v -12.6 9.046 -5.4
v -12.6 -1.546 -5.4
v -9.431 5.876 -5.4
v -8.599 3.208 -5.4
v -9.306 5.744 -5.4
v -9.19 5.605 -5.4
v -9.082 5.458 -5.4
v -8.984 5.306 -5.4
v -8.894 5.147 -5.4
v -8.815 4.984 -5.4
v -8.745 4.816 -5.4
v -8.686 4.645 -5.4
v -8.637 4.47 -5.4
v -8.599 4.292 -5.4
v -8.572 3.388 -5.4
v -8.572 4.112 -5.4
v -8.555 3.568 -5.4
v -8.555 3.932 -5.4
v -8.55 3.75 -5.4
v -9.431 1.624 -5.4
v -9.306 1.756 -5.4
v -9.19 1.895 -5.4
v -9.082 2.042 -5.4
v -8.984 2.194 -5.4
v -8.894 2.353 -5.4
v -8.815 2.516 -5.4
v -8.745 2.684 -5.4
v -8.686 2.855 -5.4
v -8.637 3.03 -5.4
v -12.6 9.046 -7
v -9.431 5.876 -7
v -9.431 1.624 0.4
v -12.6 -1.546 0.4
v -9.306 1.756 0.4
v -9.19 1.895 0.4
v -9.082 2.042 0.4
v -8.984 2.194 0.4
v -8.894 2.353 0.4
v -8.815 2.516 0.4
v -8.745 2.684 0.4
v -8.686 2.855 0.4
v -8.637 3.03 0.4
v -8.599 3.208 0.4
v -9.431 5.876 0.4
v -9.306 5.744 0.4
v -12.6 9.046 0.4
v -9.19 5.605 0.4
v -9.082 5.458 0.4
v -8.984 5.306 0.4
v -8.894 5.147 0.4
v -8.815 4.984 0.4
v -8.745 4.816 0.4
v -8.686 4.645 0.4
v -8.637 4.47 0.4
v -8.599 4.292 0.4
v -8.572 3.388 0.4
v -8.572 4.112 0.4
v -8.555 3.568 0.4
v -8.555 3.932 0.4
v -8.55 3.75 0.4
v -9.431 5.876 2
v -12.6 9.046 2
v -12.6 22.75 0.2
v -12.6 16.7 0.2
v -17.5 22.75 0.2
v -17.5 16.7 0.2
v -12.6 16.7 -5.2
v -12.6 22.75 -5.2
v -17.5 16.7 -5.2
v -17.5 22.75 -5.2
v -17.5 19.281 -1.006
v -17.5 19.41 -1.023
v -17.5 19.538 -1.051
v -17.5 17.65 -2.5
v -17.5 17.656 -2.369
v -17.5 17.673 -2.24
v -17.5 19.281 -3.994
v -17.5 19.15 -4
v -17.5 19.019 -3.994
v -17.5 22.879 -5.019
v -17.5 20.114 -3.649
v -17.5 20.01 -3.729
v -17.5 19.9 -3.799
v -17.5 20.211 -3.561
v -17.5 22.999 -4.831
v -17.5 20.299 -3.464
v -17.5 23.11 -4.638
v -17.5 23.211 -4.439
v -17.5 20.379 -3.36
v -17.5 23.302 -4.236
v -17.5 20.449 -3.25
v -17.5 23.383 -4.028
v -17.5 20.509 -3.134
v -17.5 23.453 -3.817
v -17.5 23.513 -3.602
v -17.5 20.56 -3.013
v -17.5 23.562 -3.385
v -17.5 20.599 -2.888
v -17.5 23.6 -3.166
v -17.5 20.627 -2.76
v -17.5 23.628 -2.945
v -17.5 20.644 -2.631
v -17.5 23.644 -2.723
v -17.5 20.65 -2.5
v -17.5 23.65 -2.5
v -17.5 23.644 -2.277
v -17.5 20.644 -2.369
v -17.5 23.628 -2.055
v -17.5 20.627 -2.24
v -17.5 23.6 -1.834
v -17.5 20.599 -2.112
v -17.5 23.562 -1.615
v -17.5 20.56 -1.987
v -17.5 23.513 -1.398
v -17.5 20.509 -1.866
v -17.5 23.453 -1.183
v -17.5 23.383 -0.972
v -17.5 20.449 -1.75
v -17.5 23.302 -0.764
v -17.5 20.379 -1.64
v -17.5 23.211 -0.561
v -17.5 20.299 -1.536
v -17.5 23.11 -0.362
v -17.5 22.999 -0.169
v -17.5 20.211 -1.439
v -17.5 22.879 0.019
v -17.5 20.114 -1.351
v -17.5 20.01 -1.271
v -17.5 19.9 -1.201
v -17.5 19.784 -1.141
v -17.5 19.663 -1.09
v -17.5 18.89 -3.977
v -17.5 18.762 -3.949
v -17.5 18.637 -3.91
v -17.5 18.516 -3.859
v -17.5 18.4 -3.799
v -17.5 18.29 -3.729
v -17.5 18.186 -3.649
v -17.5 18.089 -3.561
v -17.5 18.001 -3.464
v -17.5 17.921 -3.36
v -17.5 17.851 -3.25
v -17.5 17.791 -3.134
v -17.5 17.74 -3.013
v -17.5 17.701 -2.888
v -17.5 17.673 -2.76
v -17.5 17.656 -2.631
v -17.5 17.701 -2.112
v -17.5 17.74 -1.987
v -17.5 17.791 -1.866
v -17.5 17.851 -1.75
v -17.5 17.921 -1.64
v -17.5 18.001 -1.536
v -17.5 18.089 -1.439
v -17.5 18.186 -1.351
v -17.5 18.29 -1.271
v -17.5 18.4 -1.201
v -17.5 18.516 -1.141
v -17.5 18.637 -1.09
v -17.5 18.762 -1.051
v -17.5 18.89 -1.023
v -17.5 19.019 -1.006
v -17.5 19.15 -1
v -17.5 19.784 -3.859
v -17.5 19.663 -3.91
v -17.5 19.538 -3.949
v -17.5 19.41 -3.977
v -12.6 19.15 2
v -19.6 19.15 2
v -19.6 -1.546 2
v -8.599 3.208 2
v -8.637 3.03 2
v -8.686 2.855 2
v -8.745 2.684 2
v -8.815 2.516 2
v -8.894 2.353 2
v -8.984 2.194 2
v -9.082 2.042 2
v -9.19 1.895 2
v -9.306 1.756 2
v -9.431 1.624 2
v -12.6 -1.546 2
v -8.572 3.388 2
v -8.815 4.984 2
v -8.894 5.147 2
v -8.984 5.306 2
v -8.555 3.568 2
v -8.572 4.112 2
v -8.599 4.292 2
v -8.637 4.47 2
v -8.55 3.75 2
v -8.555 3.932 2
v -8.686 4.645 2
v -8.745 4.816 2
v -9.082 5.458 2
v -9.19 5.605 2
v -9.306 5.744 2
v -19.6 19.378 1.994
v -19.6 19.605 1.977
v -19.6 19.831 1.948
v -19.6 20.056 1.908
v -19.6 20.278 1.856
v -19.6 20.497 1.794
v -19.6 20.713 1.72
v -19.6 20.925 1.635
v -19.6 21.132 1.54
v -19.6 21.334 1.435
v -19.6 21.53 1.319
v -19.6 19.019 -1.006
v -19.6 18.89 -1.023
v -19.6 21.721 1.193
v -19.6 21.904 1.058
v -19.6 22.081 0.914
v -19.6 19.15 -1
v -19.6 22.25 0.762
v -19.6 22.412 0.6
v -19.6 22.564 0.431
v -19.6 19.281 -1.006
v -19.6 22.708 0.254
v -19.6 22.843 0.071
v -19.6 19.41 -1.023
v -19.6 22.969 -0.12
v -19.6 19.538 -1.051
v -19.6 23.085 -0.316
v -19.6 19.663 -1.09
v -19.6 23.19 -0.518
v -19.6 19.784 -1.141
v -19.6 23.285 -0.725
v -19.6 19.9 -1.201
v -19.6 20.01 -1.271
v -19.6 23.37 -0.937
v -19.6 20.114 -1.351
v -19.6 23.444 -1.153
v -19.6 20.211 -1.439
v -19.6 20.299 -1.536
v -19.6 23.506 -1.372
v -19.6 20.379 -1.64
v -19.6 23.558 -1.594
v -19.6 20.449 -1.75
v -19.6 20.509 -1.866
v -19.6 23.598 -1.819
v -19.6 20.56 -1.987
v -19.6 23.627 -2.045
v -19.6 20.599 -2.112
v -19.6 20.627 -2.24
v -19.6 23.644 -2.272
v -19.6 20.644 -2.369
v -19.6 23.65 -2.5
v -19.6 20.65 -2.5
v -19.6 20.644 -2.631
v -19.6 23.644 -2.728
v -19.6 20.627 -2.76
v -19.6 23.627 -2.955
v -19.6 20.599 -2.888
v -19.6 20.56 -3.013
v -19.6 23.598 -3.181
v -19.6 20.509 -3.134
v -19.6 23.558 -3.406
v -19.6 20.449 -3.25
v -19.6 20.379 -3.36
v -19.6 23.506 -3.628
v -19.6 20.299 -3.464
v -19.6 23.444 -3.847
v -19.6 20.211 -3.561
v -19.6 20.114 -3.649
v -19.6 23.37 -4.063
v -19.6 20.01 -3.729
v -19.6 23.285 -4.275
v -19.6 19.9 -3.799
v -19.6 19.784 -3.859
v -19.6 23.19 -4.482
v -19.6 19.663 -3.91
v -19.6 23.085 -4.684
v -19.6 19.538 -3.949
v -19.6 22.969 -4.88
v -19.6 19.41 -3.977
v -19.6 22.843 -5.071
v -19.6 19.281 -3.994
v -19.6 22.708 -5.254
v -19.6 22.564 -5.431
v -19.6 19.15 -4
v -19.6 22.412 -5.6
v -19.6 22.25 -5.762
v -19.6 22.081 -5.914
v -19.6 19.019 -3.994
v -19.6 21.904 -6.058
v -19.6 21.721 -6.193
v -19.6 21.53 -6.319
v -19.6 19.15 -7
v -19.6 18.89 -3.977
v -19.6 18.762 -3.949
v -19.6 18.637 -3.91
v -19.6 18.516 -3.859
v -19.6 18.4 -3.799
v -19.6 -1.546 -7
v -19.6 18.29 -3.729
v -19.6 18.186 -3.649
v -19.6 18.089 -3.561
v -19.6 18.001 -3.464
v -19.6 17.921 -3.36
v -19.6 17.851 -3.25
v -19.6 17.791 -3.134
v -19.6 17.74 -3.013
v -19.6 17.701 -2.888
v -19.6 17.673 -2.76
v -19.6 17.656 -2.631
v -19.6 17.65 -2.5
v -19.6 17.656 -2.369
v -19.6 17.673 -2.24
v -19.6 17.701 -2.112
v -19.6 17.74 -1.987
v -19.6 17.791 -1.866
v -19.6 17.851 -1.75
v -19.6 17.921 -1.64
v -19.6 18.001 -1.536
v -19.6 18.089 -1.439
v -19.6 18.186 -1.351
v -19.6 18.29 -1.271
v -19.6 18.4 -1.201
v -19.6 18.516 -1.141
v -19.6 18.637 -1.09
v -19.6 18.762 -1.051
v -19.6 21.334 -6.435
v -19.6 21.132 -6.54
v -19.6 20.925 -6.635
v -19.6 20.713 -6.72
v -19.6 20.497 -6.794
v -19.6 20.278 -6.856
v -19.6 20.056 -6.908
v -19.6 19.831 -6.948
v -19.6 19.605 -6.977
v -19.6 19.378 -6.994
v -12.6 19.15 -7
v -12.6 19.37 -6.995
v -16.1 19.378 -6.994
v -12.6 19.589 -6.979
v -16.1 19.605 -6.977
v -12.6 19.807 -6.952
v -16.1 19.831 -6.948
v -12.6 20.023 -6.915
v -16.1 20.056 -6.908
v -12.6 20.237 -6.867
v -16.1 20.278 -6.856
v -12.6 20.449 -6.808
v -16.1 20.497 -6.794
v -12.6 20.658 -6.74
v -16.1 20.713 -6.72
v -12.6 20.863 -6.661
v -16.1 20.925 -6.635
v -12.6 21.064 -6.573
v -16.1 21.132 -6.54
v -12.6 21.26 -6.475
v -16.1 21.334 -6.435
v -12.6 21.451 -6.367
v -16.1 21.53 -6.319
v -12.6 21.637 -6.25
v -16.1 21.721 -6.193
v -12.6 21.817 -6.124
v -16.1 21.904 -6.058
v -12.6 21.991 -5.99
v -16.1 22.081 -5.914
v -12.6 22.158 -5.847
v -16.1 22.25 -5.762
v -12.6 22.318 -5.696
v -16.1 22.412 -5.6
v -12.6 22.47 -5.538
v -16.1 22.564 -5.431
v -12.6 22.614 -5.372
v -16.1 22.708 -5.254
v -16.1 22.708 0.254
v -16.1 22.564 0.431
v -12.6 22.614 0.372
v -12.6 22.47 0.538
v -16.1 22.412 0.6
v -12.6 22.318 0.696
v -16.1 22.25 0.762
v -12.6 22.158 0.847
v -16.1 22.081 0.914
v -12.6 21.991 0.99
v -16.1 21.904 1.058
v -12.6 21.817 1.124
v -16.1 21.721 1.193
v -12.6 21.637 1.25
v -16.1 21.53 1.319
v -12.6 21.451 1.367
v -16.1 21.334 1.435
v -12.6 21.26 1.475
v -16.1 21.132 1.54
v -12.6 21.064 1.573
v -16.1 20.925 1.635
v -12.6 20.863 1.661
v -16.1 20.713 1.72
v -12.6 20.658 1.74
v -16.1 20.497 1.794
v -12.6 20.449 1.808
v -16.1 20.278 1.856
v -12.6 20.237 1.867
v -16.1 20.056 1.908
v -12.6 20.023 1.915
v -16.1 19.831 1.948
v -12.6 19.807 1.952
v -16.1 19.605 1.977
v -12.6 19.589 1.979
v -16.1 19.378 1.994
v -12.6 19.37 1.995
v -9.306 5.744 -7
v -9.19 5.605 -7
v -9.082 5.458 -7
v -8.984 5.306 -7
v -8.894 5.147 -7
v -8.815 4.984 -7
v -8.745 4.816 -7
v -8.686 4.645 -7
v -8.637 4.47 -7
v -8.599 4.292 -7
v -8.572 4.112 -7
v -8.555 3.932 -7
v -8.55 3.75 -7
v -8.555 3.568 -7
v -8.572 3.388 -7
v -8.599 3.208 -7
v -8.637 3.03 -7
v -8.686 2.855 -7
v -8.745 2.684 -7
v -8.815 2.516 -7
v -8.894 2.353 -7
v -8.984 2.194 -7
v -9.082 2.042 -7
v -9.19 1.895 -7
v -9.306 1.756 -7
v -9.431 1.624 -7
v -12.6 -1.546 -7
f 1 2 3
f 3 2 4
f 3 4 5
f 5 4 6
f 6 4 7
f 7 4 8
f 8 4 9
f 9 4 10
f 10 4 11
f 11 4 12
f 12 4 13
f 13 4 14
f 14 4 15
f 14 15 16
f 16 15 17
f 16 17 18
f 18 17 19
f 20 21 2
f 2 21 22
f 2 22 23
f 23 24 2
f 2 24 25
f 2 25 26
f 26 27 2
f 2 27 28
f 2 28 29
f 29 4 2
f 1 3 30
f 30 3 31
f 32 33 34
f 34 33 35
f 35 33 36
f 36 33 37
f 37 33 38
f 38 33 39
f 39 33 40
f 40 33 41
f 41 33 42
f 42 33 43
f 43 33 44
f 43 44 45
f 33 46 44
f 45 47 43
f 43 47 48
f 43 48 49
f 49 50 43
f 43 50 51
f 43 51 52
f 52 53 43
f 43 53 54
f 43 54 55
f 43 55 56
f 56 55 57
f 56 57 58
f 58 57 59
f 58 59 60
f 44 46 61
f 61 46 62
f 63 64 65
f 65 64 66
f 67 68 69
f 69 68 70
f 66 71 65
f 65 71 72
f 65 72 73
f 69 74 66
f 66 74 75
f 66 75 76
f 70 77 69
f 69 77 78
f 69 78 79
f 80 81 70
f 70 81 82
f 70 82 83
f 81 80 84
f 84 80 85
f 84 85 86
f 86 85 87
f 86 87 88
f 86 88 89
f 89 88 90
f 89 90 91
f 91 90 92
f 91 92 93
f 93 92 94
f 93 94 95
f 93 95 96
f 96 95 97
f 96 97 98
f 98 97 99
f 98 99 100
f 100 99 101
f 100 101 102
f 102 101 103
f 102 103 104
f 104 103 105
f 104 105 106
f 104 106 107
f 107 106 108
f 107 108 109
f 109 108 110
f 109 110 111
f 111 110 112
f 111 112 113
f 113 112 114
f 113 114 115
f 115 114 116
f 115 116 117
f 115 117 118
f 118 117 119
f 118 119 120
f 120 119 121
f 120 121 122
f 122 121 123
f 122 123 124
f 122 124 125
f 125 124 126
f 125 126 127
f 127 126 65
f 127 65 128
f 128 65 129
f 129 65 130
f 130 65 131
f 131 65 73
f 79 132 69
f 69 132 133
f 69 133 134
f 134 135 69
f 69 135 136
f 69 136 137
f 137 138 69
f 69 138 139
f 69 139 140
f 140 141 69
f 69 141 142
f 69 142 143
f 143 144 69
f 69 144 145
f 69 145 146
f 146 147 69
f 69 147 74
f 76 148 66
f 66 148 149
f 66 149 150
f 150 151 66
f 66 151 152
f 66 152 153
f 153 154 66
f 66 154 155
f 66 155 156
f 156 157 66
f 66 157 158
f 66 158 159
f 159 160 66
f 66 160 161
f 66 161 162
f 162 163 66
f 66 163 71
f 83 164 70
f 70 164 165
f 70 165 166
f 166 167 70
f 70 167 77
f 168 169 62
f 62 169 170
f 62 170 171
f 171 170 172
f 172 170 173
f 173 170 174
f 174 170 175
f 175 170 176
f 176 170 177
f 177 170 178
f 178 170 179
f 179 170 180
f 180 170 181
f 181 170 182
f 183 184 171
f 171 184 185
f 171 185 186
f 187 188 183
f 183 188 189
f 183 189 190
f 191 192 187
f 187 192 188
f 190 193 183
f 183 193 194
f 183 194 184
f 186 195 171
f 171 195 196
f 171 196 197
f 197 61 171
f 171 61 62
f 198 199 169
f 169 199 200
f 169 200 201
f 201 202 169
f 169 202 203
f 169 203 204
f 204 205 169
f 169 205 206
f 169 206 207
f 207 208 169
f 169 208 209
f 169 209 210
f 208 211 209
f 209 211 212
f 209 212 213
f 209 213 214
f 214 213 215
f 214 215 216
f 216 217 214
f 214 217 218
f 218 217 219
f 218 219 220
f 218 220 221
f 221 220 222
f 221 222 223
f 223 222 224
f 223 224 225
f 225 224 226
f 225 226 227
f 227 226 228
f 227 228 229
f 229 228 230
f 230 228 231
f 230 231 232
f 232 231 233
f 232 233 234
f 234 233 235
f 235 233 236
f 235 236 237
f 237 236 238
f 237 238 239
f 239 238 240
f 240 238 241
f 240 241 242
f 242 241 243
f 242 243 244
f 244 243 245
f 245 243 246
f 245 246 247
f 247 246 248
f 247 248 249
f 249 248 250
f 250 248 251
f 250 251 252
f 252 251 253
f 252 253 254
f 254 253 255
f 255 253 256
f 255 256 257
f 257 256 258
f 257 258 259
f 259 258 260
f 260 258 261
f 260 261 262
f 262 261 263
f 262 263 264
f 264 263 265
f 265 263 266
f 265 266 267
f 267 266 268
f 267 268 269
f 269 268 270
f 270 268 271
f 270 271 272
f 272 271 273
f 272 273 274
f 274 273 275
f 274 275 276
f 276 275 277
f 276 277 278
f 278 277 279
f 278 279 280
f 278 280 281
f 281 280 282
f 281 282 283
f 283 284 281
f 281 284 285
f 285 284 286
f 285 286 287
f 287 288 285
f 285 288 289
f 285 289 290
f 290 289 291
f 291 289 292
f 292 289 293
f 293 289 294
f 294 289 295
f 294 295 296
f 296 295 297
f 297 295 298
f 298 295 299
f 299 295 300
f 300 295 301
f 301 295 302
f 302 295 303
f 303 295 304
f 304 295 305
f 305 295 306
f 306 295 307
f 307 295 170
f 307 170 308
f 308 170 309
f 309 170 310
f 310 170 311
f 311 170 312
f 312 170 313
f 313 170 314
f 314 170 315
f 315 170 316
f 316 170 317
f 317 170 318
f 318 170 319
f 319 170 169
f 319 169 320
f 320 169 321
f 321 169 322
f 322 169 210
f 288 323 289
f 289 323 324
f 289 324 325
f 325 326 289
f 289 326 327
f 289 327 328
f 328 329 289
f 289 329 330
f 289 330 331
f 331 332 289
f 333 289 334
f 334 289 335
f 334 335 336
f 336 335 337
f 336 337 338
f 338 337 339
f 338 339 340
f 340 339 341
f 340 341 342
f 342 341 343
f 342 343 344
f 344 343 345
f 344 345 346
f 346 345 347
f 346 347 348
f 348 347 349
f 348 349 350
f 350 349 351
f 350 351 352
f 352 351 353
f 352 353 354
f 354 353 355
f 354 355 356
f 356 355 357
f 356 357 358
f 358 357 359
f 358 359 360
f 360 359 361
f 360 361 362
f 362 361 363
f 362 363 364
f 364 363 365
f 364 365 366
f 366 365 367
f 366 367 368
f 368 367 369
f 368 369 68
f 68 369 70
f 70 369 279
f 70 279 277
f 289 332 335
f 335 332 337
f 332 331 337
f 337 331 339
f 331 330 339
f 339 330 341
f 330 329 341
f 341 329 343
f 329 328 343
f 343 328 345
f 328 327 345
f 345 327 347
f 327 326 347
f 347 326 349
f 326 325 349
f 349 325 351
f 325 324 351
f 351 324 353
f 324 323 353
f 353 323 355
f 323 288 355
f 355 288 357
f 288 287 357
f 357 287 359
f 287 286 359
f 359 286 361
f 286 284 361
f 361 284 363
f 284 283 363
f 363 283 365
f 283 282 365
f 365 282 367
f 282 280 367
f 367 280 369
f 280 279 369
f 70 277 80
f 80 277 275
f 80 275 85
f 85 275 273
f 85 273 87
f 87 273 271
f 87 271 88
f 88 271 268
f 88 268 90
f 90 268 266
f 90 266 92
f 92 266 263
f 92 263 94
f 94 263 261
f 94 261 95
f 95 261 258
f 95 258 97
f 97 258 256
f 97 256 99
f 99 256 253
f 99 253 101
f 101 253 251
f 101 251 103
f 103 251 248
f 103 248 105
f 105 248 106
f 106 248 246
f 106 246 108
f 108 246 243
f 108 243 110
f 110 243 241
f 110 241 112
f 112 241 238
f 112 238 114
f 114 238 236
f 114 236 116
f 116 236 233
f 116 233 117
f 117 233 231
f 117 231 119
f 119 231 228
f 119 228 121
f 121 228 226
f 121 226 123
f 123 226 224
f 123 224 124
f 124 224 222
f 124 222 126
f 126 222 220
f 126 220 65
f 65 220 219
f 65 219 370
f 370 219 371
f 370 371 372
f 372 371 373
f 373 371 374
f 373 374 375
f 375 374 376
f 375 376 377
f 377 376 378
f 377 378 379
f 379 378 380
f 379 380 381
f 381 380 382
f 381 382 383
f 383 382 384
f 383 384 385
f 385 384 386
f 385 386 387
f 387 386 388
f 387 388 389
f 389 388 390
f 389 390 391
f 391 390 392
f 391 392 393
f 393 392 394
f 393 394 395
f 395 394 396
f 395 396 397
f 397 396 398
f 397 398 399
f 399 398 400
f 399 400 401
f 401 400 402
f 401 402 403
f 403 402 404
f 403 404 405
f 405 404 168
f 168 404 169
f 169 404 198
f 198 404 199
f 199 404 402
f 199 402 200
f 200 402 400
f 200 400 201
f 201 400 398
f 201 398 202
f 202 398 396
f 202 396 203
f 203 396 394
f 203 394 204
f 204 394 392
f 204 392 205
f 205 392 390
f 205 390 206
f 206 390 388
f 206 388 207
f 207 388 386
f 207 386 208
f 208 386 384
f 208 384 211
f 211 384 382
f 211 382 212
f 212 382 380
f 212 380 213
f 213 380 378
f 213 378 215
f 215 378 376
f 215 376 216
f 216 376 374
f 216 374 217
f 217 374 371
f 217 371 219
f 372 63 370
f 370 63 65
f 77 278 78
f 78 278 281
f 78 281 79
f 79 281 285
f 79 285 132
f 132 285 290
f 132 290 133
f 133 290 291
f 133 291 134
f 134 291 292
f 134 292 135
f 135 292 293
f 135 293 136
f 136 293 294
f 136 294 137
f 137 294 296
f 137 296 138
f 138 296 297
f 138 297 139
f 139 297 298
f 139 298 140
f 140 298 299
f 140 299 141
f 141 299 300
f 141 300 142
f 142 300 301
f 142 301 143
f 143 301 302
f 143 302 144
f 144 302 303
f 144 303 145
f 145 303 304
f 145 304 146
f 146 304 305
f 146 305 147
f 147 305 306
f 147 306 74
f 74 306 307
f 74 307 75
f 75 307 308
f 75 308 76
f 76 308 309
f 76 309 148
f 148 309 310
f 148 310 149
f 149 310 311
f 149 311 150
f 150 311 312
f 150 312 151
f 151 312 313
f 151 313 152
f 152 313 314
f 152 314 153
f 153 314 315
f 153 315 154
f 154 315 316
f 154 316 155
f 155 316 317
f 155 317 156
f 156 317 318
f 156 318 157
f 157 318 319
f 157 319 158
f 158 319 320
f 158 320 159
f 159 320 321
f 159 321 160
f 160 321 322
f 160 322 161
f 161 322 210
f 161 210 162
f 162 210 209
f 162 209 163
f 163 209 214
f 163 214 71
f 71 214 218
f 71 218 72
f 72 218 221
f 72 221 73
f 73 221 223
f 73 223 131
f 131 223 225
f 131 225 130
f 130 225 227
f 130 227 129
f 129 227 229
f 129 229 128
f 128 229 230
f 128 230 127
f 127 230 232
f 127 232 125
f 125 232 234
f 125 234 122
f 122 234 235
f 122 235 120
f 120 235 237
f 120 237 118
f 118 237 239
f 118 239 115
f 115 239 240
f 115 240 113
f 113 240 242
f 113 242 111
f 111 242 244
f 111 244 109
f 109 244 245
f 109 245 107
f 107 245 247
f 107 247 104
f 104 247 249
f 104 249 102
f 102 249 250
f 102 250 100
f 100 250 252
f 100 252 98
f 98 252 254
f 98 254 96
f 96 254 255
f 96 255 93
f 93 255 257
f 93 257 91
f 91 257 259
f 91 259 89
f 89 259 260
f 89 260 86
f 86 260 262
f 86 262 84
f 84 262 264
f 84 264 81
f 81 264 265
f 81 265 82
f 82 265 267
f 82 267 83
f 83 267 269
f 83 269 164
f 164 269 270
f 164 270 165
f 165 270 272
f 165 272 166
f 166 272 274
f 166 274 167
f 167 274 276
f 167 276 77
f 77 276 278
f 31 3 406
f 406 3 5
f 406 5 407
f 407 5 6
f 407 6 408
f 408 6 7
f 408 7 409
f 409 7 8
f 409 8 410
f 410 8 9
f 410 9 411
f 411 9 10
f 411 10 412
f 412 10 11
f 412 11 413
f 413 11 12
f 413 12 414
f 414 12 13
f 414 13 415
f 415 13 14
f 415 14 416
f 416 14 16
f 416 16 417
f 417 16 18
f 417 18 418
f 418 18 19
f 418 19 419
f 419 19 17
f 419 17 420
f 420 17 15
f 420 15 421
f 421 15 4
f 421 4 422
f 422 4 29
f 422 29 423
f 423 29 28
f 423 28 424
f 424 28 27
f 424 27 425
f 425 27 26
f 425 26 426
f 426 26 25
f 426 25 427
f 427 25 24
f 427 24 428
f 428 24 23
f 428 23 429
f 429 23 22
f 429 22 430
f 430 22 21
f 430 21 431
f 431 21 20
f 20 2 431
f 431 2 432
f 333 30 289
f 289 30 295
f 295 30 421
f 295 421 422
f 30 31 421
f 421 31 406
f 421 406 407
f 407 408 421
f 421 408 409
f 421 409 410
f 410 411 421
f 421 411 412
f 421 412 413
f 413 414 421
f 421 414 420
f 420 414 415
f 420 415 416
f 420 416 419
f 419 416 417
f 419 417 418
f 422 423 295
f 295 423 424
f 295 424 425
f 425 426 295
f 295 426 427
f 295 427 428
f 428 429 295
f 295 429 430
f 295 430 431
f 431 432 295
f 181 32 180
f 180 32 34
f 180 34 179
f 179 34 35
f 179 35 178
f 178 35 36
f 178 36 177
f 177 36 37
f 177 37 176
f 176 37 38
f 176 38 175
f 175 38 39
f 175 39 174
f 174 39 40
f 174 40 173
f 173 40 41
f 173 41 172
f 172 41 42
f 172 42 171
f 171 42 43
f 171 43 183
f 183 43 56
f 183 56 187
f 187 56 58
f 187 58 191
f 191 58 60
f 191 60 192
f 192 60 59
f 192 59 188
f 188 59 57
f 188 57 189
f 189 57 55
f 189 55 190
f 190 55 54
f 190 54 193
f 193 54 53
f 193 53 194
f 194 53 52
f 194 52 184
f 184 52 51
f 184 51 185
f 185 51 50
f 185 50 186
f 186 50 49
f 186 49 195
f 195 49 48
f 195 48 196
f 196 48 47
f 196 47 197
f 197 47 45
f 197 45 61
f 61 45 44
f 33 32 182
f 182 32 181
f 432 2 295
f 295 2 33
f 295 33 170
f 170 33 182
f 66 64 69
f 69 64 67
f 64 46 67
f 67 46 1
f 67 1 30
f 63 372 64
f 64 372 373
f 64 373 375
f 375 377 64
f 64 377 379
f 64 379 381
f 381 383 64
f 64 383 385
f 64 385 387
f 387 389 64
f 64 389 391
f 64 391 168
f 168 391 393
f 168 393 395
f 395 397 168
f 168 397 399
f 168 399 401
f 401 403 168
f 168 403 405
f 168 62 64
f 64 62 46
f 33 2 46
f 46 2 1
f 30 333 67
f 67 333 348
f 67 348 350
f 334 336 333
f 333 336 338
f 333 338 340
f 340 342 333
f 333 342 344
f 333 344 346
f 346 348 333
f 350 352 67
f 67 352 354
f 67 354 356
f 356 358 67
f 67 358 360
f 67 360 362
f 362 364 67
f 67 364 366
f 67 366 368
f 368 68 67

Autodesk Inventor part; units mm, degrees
ref_plane "YZ Plane" through (0, 0, 0) normal (1, 0, 0) x (0, 1, 0)
ref_plane "Work Plane1" through (0, 0, 0) normal (0, 0, 1) x (1, 0, 0)
sketch "Sketch1" plane through (0, 0, 0) normal (0, 0, 1) x (1, 0, 0)
  line L0 (-12.5, 1) -> (-12.5, -7.7) projected
  line L1 (-12.5, 12) -> (-12.5, 6.5) projected
  line L2 (-12.6, 1) -> (-12.6, -7.7)
  line L3 (-12.6, 12) -> (-12.6, 9.0456)
  arc A0 (-12.5, 1) -> (-12.5, 6.5) centre (-11.5571, 3.75) ccw projected
  line L4 (-12.4, 12) -> (-12.4, 6.6366)
  arc A1 (-9.4308, 1.6236) -> (-9.4308, 5.8764) centre (-11.5571, 3.75) ccw
  line L5 (-12.4, 0.8634) -> (-12.4, -7.7)
  line L6 (-9.4308, 5.8764) -> (-12.6, 9.0456)
  line L7 (-8.6562, 5.1018) -> (-1.312, 5.1018) construction
  line L8 (-9.4308, 1.6236) -> (-12.6, -1.5456)
  line L9 (-8.3764, 2.678) -> (0.7652, 2.678) construction
  line L10 (-19.6, -14) -> (-19.6, -6.5) projected
  line L11 (-12.6, -1.5456) -> (-19.6, -1.5456)
  line L12 (-17.5, 16.8) -> (-17.5, 21.5) projected
  line L13 (-12.5, 16.8) -> (-17.5, 16.8) projected
  line L14 (-12.6, 16.7) -> (-17.5, 16.7)
  line L15 (-12.6, 12) -> (-12.6, 16.7)
  line L16 (-17.5, 16.8) -> (-17.5, 16.7)
  line L17 (-19.6, -1.5456) -> (-19.6, 21.5)
  line L18 (-19.6, -1.5456) -> (3.4456, -1.5456) construction
  line L19 (-19.6, 21.5) -> (-17.5, 21.5)
  point P0 (0, 0)
  dimension "d0" = 0.1
  dimension "d1" = 0.1
  dimension "d2" = 0.1
  dimension "d3" = 135
  dimension "d4" = 135
  dimension "d5" = 0.1
  dimension "d6" = 90
extrude "Extrusion1" add sketch "Sketch1" along normal blind 2
sketch "Sketch2" plane through (0, 0, 0) normal (0, 0, -1) x (-1, 0, 0)
  line L0 (19.6, -1.5456) -> (12.6, -1.5456) projected
  line L1 (12.6, 9.0456) -> (12.6, 16.7) projected
  line L2 (12.6, 16.7) -> (17.5, 16.7) projected
  line L3 (17.5, 16.7) -> (17.5, 21.5) projected
  line L4 (17.5, 21.5) -> (19.6, 21.5) projected
  line L5 (19.6, 21.5) -> (19.6, -1.5456) projected
  line L6 (12.6, -1.5456) -> (12.6, 9.0456)
  point P0 (0, 0)
ref_plane "Work Plane2" through (-17.5, 12.1, -5) normal (0, 0, -1) x (0, 1, 0)
extrude "Extrusion2" add sketch "Sketch2" along normal up to surface (5 mm away)
sketch "Sketch3" plane through (-12.6, -1.5456, -5) normal (0, 0, -1) x (-1, 0, 0)
  line L0 (0, 10.5912) -> (0, 18.2456) projected
  line L1 (0, 18.2456) -> (4.9, 18.2456) projected
  line L2 (4.9, 18.2456) -> (4.9, 23.0456) projected
  line L3 (4.9, 23.0456) -> (7, 23.0456) projected
  line L4 (7, 23.0456) -> (7, 0) projected
  line L5 (7, 0) -> (0, 0) projected
  line L6 (0, 0) -> (-3.1692, 3.1692) projected
  arc A0 (-3.1692, 7.422) -> (-3.1692, 3.1692) centre (-1.0429, 5.2956) ccw projected
  line L7 (-3.1692, 7.422) -> (0, 10.5912) projected
  point P0 (-12.6, 1.5456)
extrude "Extrusion3" add sketch "Sketch3" along normal blind 2
sketch "Sketch4" plane through (-19.6, -1.5456, 2) normal (-1, 0, 0) x (0, 0, 1)
  line L0 (-2, 23.0456) -> (-2, 18.3456) projected
  line L1 (-7, 18.3456) -> (-2, 18.3456) projected
  line L2 (-7, 23.0456) -> (-7, 18.3456) projected
  line L3 (-7, 23.0456) -> (-2, 23.0456) projected
  line L4 (-2, 18.3456) -> (-7, 23.0456)
  circle A0 centre (-4.5, 20.6956) radius 1.5
  circle A1 centre (-4.5, 20.6956) radius 1.4 projected
  point P0 (-2, 1.5456)
  dimension "d13" = 3
extrude "Extrusion4" cut sketch "Sketch4" against normal blind 2.75 contours A0 L4 A1 | L4 A1 A0 | A1 L4 | L4 A1
sketch "Sketch5" plane through (-19.6, -1.5456, 2) normal (-1, 0, 0) x (0, 0, 1)
  circle A0 centre (-4.5, 20.6956) radius 1.5 projected
  line L0 (0, 23.0456) -> (0, 0) projected
  circle A1 centre (-4.5, 20.6956) radius 4.5
  line L1 (0, 23.0456) -> (-9, 23.0456) projected
  point P0 (-2, 1.5456)
  point P1 (-8.3376, 23.0456)
  point P2 (-0.6624, 23.0456)
extrude "Extrusion5" add sketch "Sketch5" against normal up to surface (2.1 mm away) contours L1 A1 picked at (-4.7918, 23.9439)
sketch "Sketch6" plane through (-19.6, -1.5456, 2) normal (-1, 0, 0) x (0, 0, 1)
  arc A0 (-0.6624, 23.0456) -> (-8.3376, 23.0456) centre (-4.5, 20.6956) ccw projected
  line L0 (0, 23.0456) -> (0, 0) projected
  line L1 (0, 23.0456) -> (-0.6624, 23.0456) projected
  circle A1 centre (-4.5, 20.6956) radius 4.5
  line L2 (-8.3376, 23.0456) -> (-9, 23.0456) projected
  line L3 (-9, 0) -> (-9, 23.0456) projected
  point P0 (-2, 1.5456)
  point P1 (-9, 20.6956)
  point P2 (-8.3376, 23.0456)
  point P3 (0, 20.6956)
extrude "Extrusion6" cut sketch "Sketch6" against normal blind 10 contours L1 L0 A1 | A1 L3 L2
sketch "Sketch7" plane through (-17.5, 16.7, 2) normal (1, 0, 0) x (0, 0, -1)
  line L0 (7, 4.8) -> (7, 0.1) projected
  line L1 (2, 4.8) -> (2, 0.1) projected
  line L2 (7.2, 4.8) -> (7.2, 0.1)
  line L3 (1.8, 4.8) -> (1.8, 0.1)
  arc A0 (9, 2.45) -> (0, 2.45) centre (4.5, 2.45) ccw projected
  line L4 (9, 2.45) -> (9, 0) projected
  line L5 (0, 0) -> (0, 2.45) projected
  line L6 (9, 0) -> (0, 0) projected
  line L7 (1.8, 0.1) -> (1.8, 0)
  line L8 (9, 0) -> (0, 0) projected
  line L9 (7.2, 0.1) -> (7.2, 0)
  line L10 (7.2, 4.8) -> (7.2, 6.05)
  line L11 (1.8, 4.8) -> (1.8, 6.05)
  point P0 (2, -16.7)
  point P1 (1.8, 0)
  dimension "d20" = 0.2
  dimension "d21" = 0.2
extrude "Extrusion7" add sketch "Sketch7" along normal up to surface (4.9 mm away) contours L10 A0 L4 L6 L9 L2 | L11 L3 L7 L6 L5 A0
sketch "Sketch8" plane through (0, 0, 0) normal (0, 0, -1) x (-1, 0, 0)
  line L0 (12.6, -1.5456) -> (12.6, 9.0456) projected
  line L1 (9.4308, 5.8764) -> (12.6, 9.0456) projected
  arc A0 (9.4308, 5.8764) -> (9.4308, 1.6236) centre (11.5571, 3.75) ccw projected
  line L2 (12.6, -1.5456) -> (9.4308, 1.6236) projected
  point P0 (0, 0)
extrude "Extrusion8" cut sketch "Sketch8" against normal blind 0.4
sketch "Sketch9" plane through (-12.6, -1.5456, -5) normal (0, 0, 1) x (1, 0, 0)
  line L0 (0, 0) -> (0, 10.5912) projected
  line L1 (3.1692, 3.1692) -> (0, 0) projected
  arc A0 (3.1692, 3.1692) -> (3.1692, 7.422) centre (1.0429, 5.2956) ccw projected
  line L2 (0, 10.5912) -> (3.1692, 7.422) projected
  point P0 (12.6, 1.5456)
extrude "Extrusion9" cut sketch "Sketch9" against normal blind 0.4
properties part number "SideCameraSlider_3DPrint"
